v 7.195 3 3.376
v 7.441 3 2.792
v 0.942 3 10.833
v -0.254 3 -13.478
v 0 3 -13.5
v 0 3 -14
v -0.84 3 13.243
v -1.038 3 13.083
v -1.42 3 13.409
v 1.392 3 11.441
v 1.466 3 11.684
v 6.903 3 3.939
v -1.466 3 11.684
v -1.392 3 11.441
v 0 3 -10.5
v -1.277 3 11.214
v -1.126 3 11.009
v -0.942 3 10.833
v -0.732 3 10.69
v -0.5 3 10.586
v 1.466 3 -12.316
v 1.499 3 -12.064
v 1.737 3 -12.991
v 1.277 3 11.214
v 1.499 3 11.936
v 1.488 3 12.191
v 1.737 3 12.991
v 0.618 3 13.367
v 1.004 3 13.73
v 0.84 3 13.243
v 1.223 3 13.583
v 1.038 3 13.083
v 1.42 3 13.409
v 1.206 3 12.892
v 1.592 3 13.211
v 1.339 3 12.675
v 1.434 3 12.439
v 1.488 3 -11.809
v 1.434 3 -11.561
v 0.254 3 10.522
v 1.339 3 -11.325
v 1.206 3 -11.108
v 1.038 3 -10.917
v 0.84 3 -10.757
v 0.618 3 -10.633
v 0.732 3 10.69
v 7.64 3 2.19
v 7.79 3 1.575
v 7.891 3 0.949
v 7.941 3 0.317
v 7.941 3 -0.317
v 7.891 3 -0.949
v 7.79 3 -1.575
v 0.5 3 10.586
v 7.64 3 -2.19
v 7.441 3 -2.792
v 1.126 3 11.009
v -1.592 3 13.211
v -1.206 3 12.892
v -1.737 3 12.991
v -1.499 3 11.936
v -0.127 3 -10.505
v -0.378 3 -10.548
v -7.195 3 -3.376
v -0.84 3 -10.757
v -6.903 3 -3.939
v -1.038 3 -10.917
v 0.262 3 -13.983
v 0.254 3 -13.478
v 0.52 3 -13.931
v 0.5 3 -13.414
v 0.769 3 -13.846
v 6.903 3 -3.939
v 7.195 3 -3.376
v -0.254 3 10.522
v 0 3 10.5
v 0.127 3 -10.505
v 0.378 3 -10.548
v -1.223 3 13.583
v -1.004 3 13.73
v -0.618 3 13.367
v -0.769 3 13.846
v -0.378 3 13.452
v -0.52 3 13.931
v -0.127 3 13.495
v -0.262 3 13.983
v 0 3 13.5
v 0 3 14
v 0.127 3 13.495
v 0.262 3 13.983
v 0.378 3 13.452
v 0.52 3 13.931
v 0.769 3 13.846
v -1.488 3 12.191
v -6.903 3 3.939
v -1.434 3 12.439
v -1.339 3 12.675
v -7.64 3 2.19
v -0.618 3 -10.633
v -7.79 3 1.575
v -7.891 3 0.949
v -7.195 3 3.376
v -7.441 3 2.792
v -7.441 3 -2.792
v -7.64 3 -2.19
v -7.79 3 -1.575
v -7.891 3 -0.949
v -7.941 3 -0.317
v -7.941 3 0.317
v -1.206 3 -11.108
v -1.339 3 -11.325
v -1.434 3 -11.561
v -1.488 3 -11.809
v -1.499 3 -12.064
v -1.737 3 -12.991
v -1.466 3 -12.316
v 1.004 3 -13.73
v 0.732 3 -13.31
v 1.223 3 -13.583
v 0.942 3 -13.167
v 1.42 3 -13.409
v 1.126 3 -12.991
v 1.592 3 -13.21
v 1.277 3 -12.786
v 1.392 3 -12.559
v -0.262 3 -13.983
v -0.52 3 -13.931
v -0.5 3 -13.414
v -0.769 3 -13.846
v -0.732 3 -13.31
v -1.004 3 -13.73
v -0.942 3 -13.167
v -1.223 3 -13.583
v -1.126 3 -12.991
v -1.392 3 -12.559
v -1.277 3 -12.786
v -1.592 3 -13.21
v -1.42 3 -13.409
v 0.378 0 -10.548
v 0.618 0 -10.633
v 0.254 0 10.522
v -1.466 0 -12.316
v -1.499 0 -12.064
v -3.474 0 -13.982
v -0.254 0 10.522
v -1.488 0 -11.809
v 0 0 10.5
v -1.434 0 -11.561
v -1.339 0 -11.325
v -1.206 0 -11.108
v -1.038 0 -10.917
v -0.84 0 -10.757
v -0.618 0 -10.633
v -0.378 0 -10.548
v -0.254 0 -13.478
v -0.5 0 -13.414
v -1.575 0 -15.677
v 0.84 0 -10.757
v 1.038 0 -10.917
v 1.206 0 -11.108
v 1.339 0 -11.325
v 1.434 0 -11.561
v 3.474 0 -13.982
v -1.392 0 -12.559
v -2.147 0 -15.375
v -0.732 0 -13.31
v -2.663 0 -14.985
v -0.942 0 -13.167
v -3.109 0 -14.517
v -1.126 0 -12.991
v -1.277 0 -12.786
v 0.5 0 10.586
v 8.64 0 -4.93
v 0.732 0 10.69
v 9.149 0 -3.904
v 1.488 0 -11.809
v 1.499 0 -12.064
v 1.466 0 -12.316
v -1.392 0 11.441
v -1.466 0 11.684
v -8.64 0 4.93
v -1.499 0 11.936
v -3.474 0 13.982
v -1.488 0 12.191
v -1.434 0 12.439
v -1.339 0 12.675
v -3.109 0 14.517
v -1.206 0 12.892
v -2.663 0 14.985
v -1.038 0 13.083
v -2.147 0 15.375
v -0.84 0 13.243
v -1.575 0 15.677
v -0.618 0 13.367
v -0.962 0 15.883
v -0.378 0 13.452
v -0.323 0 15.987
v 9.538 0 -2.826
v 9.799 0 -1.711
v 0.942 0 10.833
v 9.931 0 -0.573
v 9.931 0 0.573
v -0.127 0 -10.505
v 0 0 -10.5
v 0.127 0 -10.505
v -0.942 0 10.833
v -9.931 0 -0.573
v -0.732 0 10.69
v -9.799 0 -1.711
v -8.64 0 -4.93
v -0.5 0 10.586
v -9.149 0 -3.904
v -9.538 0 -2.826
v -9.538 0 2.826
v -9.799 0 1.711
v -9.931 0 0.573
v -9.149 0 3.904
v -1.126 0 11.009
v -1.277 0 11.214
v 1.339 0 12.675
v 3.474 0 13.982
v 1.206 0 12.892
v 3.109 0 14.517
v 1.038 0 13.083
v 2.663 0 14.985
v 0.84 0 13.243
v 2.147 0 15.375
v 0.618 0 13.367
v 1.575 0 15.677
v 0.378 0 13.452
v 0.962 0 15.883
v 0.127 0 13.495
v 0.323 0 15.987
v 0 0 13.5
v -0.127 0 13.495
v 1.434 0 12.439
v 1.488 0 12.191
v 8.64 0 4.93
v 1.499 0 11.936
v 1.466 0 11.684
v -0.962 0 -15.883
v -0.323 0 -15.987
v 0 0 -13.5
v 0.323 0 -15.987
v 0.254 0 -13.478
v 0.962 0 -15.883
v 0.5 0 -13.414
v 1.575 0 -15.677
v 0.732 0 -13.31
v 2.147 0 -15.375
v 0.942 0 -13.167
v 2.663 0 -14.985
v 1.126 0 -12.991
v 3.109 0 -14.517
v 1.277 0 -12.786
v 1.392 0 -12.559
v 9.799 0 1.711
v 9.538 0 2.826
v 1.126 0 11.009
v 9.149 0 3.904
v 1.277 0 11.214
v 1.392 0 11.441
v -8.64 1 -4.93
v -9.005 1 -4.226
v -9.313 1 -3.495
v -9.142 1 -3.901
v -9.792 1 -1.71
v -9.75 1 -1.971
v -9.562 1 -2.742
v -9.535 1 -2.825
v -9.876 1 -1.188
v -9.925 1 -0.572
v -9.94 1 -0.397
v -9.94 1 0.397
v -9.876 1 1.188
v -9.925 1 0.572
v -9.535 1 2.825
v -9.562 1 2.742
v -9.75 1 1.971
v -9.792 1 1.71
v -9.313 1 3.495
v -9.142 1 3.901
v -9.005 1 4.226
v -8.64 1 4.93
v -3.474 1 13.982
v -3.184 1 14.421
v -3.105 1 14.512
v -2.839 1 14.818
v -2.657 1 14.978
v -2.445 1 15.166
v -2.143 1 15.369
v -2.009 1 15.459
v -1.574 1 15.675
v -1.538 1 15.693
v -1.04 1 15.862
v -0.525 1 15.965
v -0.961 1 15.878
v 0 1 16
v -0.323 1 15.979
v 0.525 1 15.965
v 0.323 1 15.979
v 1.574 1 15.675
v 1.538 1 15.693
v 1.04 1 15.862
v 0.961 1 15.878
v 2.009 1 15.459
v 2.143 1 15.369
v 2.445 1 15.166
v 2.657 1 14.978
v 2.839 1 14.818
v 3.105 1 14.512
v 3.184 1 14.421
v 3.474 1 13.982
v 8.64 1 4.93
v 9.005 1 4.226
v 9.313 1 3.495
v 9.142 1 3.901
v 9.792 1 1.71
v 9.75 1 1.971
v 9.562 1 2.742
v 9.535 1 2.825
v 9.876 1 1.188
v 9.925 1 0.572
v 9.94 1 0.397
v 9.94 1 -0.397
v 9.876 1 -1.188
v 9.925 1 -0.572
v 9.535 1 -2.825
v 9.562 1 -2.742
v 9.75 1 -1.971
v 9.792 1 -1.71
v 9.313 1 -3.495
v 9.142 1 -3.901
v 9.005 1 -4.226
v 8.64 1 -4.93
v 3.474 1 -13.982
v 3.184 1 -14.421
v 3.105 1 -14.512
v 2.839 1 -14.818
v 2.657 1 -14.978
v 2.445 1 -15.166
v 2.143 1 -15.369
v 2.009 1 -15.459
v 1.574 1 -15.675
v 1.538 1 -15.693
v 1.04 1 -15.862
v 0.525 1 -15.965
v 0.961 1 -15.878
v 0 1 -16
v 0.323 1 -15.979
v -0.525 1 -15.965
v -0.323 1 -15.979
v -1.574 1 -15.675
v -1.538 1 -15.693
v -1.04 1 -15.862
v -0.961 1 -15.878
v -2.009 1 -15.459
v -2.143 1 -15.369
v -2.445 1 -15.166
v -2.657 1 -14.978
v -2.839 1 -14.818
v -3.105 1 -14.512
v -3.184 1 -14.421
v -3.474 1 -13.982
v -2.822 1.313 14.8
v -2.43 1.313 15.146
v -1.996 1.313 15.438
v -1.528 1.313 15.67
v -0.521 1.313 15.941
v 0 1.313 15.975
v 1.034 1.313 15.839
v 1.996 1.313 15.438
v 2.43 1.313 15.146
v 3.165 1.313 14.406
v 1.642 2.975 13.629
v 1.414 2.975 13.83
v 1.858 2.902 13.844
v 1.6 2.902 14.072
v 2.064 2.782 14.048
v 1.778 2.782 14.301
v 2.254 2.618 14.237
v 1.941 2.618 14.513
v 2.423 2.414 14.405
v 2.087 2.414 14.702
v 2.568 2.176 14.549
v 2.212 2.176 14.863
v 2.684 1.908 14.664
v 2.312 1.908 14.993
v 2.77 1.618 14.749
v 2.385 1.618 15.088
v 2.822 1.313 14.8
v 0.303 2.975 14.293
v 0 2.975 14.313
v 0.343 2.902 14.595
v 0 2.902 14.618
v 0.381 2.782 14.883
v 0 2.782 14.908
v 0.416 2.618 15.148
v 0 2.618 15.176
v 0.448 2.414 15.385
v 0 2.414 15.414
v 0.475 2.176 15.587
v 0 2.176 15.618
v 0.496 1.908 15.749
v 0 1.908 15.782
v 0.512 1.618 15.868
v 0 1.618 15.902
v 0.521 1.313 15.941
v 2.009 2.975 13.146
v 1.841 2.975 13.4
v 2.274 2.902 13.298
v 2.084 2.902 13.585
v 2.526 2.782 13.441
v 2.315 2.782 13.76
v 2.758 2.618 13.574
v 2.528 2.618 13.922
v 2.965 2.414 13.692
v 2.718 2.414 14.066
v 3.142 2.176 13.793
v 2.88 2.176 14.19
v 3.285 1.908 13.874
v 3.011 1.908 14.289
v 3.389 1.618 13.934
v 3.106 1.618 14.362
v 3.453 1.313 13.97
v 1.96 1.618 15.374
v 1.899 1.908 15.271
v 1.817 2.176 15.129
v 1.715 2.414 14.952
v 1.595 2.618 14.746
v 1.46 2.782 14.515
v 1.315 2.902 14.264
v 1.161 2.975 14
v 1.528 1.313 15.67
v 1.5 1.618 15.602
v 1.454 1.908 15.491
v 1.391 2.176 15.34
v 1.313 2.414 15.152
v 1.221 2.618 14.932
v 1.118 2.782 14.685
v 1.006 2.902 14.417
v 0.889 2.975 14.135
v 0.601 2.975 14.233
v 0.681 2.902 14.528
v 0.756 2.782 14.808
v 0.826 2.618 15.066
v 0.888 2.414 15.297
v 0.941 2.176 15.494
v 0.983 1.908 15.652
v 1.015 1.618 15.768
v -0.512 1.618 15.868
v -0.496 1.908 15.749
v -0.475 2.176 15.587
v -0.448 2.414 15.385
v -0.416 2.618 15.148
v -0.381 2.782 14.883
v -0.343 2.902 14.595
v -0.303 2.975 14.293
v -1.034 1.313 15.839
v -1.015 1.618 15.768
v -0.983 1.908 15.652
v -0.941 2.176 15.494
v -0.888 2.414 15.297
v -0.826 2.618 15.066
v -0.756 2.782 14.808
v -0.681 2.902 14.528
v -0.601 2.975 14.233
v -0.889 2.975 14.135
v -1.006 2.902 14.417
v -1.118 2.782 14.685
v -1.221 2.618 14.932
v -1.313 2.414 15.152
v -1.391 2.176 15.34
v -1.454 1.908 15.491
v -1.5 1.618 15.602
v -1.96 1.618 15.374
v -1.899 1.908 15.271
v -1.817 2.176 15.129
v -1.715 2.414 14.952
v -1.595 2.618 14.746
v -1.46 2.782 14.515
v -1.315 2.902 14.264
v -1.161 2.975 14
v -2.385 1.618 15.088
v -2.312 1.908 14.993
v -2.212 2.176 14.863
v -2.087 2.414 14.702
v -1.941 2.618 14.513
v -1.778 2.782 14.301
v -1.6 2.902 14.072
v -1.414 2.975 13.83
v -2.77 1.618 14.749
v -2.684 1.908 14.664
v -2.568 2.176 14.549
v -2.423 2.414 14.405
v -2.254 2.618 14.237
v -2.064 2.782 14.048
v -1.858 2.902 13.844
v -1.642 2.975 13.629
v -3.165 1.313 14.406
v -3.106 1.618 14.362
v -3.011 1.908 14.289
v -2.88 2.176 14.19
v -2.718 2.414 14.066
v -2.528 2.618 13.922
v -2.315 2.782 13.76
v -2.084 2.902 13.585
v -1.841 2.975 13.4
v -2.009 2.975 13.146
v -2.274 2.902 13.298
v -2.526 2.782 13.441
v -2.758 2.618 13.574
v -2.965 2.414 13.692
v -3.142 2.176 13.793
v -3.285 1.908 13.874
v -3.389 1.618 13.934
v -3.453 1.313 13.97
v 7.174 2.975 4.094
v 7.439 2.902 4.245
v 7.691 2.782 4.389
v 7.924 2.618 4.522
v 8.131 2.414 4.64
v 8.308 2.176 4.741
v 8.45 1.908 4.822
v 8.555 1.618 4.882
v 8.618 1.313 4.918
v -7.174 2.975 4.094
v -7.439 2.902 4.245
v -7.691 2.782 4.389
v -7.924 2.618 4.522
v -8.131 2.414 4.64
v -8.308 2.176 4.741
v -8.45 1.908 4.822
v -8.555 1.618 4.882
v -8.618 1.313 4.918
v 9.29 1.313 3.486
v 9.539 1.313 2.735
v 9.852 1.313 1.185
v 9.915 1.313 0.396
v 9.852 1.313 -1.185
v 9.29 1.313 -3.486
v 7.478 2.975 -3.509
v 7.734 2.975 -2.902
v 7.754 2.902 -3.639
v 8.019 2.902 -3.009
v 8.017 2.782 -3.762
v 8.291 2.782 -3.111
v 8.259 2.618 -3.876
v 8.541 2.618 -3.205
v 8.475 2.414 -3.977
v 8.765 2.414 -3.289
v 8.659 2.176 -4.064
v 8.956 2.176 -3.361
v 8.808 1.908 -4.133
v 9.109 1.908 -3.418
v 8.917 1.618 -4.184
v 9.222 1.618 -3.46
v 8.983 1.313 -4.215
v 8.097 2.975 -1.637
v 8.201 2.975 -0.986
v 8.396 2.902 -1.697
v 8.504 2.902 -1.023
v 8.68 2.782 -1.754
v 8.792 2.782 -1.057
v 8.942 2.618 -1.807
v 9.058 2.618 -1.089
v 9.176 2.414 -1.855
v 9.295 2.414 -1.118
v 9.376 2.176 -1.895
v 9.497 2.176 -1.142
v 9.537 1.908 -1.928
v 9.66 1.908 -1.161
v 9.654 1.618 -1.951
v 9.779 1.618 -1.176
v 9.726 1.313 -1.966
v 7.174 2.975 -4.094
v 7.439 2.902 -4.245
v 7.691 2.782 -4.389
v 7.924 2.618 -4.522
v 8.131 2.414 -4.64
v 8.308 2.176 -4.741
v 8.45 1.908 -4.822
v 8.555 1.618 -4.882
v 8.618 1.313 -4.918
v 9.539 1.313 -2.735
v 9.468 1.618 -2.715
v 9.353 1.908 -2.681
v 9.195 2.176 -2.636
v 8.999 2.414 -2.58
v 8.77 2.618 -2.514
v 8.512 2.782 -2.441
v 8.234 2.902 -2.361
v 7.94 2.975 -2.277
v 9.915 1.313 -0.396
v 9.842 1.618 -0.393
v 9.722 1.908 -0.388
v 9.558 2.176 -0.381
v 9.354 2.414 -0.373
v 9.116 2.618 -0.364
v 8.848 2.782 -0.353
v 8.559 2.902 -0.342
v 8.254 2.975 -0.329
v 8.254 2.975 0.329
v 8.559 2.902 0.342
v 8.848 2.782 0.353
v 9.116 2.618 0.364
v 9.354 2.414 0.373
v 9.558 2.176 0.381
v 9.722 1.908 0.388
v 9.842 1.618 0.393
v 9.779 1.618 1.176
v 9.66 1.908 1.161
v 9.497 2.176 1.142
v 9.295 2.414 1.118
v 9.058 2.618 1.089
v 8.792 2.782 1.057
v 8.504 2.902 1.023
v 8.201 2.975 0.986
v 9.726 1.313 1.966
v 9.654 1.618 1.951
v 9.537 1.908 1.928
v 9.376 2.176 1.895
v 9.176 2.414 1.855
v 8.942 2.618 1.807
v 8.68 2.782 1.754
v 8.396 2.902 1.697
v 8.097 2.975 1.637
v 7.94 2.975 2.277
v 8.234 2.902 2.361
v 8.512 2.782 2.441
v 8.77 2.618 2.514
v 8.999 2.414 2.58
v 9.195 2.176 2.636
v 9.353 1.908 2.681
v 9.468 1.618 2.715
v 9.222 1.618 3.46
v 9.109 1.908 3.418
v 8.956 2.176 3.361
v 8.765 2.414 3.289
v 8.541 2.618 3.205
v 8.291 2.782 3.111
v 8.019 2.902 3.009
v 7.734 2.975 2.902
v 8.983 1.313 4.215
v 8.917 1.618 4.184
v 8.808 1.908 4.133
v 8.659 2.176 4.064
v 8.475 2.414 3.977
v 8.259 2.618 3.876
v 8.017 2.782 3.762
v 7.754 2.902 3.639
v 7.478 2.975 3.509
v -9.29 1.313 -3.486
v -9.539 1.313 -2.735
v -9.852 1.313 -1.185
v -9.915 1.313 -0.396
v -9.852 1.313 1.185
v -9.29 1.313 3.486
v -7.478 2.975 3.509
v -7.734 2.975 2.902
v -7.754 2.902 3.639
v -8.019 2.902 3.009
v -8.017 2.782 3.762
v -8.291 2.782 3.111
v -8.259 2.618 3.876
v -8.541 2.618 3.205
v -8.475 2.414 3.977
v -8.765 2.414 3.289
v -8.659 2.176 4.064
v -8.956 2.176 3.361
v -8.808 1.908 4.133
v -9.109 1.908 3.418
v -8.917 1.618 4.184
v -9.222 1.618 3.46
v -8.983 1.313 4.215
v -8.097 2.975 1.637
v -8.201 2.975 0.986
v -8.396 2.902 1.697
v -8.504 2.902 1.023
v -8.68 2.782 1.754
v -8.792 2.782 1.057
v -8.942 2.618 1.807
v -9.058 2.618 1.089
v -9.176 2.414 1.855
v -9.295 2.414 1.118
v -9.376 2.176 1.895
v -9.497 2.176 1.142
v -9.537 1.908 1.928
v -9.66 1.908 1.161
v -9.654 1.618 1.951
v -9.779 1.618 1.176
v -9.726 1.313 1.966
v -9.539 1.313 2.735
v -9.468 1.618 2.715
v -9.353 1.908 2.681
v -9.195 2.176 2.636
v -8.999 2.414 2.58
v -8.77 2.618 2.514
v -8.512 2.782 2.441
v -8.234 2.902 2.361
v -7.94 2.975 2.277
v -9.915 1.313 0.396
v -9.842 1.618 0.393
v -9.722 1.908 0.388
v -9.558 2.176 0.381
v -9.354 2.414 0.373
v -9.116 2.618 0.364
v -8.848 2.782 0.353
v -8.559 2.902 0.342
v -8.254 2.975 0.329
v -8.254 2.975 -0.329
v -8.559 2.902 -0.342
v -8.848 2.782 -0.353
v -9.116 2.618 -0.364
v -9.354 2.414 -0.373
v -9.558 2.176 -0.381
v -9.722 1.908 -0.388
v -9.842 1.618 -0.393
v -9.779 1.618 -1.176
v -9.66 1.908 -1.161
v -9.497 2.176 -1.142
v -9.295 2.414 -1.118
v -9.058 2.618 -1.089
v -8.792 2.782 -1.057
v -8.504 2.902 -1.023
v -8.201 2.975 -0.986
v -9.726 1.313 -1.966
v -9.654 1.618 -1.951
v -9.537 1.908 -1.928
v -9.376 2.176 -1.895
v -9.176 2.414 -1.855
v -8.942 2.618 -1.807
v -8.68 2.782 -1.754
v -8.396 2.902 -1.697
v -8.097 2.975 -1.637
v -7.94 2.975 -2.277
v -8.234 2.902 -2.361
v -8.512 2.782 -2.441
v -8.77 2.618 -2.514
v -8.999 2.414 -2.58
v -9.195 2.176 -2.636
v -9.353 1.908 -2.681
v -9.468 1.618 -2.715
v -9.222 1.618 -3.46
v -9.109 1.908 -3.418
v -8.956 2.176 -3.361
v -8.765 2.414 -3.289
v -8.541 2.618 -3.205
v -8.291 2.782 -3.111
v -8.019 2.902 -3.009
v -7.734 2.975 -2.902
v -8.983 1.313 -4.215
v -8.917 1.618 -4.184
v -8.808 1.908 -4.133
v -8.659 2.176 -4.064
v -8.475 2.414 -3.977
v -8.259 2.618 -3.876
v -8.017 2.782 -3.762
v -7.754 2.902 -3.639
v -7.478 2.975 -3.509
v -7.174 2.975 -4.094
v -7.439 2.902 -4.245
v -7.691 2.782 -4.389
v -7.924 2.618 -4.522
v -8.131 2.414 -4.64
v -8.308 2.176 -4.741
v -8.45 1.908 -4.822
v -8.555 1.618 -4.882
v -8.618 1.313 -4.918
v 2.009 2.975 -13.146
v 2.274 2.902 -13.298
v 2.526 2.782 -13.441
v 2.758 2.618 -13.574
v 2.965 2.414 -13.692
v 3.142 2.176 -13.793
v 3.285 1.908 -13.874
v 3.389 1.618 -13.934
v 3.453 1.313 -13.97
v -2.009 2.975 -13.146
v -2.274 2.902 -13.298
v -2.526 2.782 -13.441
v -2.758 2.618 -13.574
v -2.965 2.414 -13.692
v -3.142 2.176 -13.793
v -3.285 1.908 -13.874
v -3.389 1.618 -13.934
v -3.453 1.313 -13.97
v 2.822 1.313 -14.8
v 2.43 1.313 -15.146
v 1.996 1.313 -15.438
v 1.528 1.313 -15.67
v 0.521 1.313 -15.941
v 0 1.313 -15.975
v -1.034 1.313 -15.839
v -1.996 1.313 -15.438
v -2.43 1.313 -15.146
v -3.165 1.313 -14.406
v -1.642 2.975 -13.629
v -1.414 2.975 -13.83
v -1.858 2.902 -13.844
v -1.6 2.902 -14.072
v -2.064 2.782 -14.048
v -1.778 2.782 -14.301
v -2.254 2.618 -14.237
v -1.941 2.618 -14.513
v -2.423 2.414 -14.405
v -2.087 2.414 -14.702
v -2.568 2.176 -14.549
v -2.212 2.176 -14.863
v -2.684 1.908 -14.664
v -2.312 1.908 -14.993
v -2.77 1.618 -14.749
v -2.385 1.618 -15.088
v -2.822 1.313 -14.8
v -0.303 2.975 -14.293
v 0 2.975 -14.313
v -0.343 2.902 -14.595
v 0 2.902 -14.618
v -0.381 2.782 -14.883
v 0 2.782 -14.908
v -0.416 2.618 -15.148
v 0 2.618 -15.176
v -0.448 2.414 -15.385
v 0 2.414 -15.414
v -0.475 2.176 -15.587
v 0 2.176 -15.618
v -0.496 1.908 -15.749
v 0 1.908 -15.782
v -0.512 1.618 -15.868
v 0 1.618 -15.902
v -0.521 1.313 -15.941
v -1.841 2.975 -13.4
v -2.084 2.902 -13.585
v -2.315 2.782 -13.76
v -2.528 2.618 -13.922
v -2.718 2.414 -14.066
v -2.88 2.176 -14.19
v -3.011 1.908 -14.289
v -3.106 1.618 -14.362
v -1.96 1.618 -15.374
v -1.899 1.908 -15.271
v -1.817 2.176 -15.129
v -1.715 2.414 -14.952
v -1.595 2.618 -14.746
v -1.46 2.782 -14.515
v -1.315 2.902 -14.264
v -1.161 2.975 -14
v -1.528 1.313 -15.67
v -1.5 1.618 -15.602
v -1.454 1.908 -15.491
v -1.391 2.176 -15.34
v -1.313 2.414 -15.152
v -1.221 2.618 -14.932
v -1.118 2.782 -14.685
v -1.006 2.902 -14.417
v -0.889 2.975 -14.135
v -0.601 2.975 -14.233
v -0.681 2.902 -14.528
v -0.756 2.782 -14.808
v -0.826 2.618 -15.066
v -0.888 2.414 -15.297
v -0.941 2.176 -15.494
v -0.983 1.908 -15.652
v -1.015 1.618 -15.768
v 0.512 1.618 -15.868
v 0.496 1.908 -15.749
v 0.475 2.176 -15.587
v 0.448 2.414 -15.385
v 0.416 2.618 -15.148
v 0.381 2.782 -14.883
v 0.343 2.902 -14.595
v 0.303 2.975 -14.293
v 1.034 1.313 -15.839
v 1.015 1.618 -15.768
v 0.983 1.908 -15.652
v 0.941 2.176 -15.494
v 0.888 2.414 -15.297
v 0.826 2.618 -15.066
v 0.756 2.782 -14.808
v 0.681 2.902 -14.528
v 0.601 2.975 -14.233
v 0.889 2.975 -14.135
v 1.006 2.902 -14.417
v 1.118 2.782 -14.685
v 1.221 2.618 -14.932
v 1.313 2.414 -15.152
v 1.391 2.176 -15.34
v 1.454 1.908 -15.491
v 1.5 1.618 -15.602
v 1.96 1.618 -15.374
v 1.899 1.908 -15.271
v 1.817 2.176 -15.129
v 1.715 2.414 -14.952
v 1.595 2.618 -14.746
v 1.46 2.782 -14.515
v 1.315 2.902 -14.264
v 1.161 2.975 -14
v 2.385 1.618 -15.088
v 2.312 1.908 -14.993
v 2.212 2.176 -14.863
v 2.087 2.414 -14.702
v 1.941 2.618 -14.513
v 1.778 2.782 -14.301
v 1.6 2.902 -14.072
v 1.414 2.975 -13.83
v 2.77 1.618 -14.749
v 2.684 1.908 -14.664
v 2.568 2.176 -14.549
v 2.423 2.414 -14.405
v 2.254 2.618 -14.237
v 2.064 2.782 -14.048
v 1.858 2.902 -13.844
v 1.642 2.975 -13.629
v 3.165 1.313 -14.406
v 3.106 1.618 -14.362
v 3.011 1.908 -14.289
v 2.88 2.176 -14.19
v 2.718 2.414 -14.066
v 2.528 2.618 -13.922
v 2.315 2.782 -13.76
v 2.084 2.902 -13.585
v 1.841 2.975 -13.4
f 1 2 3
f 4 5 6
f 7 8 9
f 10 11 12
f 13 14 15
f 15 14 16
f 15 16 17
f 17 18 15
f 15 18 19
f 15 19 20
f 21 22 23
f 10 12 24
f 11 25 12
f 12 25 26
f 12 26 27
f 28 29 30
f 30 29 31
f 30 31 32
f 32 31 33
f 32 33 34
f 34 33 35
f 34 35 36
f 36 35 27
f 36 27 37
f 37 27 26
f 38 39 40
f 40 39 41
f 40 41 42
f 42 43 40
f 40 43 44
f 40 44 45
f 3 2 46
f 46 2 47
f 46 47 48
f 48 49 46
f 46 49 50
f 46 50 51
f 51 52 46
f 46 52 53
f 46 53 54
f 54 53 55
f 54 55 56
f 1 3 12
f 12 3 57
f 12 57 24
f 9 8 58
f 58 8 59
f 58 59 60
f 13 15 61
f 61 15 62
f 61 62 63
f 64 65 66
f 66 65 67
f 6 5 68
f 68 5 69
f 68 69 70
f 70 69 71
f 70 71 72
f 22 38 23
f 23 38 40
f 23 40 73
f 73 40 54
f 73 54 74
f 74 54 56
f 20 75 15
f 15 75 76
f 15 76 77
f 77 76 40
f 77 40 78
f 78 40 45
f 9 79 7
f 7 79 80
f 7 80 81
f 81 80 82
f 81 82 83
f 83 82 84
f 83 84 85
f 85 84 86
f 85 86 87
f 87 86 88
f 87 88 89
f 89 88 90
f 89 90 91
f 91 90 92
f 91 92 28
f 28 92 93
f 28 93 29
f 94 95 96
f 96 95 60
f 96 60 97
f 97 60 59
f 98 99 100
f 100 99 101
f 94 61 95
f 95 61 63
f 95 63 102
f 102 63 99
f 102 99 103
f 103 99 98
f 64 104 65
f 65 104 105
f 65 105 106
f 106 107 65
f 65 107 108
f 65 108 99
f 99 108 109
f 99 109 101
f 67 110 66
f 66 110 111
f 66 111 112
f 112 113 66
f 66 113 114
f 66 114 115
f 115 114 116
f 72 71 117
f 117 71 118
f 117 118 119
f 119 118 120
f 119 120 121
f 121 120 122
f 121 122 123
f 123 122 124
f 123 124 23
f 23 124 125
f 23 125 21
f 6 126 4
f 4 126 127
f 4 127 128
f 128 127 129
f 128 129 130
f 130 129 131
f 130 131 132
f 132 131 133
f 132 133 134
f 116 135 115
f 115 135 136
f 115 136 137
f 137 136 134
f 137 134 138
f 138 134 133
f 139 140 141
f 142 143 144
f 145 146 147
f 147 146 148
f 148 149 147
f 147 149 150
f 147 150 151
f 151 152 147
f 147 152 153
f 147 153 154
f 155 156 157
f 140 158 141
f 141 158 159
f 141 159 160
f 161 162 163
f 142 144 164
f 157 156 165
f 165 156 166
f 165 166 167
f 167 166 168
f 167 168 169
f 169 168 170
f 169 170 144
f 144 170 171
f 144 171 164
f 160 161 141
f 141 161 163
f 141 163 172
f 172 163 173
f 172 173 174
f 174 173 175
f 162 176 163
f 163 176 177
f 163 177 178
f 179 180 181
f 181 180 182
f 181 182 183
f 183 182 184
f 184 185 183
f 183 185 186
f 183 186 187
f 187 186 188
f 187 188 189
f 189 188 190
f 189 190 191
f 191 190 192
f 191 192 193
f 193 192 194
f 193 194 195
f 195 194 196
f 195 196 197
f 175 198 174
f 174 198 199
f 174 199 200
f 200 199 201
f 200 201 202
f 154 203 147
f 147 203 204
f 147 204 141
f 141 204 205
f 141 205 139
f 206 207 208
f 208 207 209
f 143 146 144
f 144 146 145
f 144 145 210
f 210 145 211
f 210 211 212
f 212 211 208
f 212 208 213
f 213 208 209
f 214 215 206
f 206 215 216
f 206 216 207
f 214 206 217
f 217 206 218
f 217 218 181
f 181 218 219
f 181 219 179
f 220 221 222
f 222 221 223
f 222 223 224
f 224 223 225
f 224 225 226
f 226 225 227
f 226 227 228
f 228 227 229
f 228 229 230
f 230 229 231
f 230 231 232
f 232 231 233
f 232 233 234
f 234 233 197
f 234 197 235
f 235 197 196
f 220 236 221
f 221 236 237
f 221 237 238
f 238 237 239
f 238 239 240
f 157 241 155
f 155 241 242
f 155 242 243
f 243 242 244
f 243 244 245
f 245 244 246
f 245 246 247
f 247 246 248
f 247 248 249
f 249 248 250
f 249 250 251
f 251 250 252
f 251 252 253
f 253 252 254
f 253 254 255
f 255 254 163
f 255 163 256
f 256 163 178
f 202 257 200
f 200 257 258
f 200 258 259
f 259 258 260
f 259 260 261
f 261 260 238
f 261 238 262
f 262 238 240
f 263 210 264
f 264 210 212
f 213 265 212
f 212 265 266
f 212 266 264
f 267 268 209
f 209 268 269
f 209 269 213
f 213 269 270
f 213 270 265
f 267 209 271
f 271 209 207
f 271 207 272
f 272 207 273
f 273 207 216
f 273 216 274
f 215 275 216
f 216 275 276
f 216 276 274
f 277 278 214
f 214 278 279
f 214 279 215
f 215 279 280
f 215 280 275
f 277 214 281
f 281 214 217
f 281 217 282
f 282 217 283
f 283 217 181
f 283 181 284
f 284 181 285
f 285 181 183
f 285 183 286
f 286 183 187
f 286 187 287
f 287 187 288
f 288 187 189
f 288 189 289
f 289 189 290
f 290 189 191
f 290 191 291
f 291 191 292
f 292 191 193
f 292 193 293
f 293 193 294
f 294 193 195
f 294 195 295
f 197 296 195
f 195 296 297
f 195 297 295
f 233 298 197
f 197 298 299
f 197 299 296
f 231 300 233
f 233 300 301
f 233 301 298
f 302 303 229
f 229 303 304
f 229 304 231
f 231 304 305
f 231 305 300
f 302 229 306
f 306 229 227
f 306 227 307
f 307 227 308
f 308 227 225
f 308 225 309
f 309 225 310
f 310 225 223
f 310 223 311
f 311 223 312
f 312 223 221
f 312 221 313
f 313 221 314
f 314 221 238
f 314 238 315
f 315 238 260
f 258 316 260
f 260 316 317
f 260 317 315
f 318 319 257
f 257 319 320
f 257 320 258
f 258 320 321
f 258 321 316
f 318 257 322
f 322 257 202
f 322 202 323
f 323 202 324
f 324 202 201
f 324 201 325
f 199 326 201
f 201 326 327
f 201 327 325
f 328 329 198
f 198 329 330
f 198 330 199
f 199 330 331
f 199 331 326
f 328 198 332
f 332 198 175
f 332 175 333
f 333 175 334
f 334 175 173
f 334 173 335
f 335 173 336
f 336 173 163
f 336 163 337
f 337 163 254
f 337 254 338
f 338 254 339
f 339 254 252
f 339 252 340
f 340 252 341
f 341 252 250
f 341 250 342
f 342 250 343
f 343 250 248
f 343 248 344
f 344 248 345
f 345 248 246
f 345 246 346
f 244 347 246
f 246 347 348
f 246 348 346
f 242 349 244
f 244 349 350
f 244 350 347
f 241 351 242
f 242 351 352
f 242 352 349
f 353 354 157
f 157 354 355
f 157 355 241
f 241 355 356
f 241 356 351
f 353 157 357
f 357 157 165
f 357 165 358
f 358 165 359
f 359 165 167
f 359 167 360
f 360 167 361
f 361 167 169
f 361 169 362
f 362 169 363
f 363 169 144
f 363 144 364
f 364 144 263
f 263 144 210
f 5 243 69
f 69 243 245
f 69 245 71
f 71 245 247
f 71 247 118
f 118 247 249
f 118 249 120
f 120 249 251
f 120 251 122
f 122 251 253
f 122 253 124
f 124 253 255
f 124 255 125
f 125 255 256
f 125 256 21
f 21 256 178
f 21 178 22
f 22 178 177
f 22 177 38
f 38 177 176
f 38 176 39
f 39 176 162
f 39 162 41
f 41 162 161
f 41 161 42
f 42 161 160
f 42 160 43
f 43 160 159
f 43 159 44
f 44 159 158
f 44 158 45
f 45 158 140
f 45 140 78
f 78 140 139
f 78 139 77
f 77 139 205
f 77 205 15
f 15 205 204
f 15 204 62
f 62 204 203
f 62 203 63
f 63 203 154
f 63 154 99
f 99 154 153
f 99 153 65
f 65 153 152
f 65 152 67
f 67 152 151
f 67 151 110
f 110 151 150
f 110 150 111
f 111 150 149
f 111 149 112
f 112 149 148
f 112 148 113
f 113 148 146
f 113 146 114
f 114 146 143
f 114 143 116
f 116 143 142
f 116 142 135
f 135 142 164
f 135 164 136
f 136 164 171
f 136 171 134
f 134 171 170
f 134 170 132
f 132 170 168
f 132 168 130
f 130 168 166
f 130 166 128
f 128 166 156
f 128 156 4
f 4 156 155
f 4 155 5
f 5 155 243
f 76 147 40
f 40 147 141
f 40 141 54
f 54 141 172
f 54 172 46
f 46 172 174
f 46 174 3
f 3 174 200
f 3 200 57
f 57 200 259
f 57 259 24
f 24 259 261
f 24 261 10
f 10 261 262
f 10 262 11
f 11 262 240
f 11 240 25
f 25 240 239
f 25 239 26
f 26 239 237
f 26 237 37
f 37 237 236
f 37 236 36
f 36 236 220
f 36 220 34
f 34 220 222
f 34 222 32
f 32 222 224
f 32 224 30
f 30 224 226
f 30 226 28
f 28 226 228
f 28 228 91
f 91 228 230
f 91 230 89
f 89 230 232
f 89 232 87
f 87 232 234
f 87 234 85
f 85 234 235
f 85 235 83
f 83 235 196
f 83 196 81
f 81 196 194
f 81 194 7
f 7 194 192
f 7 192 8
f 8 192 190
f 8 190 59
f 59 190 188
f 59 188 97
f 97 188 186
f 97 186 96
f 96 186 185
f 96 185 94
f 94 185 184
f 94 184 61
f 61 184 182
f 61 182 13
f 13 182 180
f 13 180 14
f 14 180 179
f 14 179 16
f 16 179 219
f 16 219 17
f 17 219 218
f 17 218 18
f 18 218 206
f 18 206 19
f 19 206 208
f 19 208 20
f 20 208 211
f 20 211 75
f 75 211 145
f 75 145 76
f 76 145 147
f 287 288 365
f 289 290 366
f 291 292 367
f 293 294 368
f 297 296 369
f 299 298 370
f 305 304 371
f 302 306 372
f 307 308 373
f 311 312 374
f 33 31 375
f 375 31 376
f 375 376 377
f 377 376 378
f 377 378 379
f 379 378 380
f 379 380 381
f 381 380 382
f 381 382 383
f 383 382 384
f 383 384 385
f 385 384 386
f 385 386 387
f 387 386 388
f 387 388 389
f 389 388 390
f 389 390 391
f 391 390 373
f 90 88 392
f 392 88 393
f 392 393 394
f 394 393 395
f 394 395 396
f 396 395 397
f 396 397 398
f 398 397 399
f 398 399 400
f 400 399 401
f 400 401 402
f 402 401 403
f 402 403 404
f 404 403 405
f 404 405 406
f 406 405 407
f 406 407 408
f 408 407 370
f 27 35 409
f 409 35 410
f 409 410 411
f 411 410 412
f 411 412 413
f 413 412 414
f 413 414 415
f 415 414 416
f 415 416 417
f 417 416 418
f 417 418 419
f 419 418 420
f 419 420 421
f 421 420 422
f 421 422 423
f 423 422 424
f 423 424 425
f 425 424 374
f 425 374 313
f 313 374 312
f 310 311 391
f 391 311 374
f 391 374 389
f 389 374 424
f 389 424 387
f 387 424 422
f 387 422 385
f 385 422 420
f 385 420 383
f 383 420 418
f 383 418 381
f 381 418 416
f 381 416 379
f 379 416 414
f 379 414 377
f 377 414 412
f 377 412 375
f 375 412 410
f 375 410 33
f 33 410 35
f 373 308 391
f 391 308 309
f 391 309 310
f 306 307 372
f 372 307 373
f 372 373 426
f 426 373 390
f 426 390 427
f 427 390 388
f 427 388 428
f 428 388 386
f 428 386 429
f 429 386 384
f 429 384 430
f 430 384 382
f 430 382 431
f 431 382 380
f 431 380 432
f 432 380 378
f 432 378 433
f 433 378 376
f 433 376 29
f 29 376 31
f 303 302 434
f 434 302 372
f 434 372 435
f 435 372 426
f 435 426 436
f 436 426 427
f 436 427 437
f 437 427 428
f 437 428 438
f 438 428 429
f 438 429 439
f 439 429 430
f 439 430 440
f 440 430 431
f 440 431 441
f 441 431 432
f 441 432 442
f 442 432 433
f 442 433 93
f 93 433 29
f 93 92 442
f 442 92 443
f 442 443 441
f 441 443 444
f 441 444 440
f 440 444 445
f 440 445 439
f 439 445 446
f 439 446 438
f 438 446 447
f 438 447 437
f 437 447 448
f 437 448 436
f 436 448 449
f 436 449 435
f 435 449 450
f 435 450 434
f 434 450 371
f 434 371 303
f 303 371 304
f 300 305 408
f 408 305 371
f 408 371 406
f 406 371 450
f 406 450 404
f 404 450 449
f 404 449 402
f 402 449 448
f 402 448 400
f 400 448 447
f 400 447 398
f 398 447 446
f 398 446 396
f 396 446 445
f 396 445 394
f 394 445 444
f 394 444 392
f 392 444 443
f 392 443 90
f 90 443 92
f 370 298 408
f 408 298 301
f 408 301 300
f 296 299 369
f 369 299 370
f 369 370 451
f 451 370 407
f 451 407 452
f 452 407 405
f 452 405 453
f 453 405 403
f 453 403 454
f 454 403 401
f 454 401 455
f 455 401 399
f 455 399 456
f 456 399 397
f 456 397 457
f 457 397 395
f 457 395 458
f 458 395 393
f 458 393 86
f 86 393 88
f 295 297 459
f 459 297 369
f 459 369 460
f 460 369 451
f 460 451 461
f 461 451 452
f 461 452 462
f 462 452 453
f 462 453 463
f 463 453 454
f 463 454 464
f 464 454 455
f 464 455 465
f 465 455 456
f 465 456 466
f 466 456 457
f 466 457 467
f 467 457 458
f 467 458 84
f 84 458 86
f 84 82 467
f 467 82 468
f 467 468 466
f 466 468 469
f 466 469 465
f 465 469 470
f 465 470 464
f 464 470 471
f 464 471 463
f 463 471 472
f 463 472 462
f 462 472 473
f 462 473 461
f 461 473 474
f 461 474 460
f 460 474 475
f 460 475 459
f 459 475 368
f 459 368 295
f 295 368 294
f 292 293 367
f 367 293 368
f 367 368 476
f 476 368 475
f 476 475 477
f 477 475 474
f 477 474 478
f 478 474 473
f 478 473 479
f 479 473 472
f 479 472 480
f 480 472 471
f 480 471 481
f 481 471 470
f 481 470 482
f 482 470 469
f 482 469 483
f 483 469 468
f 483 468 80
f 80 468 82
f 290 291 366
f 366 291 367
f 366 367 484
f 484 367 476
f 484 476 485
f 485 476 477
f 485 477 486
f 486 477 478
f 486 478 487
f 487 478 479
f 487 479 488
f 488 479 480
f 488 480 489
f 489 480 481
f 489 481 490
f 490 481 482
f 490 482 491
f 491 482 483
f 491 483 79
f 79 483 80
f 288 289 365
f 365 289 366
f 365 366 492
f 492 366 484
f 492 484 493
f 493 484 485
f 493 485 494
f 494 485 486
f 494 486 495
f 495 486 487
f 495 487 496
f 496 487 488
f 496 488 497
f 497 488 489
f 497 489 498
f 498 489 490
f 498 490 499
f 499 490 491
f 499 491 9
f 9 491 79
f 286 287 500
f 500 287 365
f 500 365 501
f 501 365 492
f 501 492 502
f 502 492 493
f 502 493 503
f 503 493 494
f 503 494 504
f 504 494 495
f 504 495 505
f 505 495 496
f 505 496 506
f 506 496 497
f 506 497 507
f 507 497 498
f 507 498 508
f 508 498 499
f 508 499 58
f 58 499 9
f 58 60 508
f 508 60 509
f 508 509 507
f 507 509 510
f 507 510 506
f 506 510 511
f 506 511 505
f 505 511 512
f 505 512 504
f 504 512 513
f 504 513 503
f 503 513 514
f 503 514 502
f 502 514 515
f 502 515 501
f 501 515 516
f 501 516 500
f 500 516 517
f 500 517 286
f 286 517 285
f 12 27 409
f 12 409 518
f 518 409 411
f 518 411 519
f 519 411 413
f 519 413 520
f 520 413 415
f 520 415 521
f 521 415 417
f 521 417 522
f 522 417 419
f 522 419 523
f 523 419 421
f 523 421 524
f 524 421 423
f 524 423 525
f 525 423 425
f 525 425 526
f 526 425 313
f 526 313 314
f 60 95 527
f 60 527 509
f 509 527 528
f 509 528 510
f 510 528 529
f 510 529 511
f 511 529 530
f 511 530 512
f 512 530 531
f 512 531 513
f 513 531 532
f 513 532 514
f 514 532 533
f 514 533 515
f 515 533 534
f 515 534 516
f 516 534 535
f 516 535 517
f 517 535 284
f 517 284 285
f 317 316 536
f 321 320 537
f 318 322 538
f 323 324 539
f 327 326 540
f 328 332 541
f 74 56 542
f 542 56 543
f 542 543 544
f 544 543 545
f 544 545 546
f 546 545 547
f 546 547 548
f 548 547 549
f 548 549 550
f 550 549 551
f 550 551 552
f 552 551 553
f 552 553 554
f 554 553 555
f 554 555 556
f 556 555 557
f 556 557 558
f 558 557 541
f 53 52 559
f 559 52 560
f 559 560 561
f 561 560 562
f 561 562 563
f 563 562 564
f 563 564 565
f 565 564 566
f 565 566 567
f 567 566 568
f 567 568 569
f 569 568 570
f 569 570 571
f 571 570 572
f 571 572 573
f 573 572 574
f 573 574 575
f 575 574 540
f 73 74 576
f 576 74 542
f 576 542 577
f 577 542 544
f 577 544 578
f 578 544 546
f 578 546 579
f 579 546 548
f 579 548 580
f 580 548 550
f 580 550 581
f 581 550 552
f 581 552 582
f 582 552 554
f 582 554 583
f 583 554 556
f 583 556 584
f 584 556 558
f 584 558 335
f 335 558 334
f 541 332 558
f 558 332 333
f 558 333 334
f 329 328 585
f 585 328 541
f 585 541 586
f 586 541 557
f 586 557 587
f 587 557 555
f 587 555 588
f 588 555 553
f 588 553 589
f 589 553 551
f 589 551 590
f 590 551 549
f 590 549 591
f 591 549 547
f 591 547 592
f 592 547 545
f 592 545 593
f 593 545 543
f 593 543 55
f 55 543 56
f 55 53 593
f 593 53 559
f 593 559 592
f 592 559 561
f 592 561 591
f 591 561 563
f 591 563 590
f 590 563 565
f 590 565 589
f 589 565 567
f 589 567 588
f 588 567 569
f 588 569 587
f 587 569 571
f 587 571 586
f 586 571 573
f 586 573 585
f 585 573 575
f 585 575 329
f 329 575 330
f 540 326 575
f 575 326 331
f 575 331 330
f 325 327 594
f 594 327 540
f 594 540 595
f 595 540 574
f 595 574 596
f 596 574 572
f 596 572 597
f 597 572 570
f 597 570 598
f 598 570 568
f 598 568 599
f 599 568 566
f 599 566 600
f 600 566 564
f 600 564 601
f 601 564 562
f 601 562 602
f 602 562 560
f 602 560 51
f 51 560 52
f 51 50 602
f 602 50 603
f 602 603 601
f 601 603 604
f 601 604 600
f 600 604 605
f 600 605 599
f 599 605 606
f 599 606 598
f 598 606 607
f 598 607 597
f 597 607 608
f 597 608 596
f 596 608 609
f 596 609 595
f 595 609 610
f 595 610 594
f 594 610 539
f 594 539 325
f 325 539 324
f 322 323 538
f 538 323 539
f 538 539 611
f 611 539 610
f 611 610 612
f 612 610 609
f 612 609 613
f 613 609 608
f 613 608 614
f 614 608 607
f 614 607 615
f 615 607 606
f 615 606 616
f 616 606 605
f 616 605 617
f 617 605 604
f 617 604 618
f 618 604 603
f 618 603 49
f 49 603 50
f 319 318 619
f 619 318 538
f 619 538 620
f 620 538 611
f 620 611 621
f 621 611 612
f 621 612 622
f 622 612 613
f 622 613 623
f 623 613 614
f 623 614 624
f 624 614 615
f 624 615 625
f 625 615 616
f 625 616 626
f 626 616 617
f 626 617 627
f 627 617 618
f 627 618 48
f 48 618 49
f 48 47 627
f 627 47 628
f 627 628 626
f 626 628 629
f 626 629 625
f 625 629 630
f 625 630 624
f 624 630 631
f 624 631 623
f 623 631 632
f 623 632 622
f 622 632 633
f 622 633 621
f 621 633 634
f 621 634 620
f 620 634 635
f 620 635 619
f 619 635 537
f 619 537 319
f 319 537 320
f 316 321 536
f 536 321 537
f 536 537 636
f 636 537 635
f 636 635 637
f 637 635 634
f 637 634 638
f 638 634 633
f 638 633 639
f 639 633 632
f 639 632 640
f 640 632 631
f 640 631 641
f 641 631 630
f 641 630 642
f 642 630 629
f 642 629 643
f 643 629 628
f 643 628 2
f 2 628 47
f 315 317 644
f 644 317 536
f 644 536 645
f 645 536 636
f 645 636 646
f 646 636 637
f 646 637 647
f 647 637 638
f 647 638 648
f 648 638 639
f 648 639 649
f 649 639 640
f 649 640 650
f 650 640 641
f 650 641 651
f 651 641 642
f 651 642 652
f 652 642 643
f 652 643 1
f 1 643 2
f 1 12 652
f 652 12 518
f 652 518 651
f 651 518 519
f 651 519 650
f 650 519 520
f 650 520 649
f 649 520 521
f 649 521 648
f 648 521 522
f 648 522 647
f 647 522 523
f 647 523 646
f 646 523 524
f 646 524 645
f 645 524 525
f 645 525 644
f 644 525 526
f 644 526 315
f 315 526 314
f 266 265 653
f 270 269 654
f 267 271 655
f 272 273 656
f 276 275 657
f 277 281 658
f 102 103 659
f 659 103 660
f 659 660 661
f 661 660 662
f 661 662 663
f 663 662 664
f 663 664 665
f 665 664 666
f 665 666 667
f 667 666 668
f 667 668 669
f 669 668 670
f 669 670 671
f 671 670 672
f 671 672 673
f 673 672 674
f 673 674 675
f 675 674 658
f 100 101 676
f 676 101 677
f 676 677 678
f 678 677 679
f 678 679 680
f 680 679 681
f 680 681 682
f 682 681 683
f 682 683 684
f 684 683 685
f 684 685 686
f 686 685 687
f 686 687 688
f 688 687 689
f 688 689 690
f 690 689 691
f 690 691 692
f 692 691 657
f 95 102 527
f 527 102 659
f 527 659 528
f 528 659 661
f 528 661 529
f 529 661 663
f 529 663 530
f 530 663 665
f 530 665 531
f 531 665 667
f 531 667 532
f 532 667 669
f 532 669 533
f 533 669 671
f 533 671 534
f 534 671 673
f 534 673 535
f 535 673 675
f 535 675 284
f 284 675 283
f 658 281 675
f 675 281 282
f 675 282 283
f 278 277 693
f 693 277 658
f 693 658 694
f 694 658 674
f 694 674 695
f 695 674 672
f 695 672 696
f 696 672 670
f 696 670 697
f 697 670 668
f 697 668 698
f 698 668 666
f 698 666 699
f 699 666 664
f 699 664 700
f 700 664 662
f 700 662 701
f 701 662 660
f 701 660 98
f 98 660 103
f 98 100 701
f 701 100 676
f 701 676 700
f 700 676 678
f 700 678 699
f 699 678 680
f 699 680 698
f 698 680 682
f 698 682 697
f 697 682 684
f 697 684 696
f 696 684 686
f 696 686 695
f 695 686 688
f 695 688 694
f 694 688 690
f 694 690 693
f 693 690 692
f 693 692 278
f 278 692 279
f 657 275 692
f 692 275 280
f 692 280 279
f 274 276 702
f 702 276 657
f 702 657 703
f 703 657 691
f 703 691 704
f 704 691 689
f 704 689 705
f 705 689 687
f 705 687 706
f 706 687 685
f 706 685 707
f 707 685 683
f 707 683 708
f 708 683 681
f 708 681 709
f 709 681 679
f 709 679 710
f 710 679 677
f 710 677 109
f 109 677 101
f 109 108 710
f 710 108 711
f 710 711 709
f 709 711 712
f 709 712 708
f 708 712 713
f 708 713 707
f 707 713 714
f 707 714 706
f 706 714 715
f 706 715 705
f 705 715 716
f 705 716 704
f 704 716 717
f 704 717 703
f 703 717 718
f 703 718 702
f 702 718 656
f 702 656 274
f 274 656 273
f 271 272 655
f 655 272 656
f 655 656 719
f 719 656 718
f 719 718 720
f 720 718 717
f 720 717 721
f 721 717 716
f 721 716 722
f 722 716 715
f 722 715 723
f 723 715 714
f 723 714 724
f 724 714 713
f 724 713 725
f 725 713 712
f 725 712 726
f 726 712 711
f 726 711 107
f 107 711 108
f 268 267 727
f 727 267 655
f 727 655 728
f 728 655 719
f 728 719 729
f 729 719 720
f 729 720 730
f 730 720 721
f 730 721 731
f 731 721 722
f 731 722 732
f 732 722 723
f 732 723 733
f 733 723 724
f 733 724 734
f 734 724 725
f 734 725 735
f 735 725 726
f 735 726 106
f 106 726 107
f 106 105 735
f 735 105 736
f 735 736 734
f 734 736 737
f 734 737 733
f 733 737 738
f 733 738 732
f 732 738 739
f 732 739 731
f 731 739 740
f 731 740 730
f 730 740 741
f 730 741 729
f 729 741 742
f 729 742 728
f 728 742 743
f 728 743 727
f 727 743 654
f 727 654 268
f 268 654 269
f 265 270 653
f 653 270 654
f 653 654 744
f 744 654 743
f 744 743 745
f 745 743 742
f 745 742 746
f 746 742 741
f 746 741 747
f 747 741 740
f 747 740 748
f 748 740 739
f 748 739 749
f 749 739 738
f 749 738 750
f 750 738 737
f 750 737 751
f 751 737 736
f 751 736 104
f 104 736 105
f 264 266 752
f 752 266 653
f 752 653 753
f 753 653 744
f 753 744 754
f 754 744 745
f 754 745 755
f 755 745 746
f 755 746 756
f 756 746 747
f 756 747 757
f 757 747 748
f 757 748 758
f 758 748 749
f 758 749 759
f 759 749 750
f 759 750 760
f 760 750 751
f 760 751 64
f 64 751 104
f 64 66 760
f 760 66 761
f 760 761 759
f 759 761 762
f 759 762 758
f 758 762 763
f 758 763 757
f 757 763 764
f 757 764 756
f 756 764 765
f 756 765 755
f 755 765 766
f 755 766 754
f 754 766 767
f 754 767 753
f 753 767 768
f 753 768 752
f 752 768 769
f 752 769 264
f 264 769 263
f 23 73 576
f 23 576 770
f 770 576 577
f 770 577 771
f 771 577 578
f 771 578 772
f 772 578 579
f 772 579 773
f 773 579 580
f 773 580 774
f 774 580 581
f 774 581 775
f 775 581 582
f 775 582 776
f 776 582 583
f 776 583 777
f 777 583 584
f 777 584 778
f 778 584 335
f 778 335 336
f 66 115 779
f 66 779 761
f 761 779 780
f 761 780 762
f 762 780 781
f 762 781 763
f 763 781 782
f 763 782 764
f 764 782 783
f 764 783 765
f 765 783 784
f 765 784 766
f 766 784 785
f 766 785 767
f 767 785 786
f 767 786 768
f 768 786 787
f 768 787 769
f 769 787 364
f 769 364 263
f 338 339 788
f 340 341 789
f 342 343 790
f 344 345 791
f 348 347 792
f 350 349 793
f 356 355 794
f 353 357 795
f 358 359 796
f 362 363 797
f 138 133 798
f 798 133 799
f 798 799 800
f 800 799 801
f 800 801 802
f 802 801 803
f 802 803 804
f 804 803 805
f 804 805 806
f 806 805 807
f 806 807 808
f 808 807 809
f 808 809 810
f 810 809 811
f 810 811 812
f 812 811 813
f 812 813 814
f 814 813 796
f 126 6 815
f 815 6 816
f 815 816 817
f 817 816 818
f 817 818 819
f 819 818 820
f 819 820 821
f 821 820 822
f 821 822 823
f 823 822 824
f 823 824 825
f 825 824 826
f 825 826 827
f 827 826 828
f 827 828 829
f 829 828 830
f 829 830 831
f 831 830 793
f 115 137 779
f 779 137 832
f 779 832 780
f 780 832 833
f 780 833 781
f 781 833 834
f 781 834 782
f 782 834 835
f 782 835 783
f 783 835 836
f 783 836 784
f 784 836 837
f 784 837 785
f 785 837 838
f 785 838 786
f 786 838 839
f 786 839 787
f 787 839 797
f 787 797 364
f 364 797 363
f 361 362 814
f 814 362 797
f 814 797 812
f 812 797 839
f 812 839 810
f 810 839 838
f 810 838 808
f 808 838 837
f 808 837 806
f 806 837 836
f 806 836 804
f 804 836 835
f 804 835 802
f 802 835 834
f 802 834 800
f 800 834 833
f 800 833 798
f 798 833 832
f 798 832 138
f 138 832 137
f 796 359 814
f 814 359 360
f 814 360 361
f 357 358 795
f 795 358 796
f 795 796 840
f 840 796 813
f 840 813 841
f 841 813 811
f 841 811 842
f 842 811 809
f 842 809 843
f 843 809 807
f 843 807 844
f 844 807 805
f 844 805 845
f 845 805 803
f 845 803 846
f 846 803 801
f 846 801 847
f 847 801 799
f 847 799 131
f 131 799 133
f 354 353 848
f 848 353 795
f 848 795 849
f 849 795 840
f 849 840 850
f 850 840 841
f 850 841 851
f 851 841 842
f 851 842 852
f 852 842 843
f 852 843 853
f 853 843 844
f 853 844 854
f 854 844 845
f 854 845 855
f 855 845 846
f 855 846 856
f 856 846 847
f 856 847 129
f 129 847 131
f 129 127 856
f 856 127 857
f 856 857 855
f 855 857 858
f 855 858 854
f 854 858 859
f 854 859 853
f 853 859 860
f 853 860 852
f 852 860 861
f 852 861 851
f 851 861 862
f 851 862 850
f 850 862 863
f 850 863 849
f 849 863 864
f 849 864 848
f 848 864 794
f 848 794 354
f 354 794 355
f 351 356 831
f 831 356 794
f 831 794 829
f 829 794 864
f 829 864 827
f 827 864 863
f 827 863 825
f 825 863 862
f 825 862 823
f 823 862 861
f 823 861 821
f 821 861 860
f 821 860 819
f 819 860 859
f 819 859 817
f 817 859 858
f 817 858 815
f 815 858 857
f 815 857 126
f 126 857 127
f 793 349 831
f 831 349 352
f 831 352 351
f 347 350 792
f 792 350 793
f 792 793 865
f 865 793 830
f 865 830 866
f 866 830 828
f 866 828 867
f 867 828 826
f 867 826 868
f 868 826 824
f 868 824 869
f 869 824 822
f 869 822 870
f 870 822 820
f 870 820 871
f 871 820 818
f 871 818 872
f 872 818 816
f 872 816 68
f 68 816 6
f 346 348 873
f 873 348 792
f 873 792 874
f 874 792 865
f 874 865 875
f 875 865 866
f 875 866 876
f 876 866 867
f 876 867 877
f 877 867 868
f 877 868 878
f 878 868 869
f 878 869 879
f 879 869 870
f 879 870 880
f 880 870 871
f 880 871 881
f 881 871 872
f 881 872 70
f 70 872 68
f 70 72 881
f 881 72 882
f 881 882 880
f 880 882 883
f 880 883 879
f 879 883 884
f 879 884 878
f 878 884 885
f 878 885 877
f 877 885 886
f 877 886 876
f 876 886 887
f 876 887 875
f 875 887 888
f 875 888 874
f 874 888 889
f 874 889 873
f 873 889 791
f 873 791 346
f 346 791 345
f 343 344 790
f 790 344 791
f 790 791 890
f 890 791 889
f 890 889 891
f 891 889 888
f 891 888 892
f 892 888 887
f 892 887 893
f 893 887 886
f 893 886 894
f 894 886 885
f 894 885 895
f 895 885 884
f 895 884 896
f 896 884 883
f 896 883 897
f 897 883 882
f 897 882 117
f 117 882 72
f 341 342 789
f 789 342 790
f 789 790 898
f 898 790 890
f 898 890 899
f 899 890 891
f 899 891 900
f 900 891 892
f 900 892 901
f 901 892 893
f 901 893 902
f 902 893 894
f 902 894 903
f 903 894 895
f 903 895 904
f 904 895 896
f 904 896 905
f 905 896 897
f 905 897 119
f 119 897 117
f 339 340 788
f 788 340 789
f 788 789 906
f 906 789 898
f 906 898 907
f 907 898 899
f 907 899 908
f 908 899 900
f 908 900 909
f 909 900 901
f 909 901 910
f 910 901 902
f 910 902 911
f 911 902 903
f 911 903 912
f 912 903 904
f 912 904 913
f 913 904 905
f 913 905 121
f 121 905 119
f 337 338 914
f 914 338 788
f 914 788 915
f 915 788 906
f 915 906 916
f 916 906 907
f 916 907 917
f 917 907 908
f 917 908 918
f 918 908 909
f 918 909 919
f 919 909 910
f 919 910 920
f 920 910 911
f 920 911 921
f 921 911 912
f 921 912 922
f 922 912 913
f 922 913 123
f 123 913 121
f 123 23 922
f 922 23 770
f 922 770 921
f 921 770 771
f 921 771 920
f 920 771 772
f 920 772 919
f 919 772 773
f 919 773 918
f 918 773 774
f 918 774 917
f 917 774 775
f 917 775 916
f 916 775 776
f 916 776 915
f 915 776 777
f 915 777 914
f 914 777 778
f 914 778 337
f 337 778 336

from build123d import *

# Parameters (mm, degrees)
SKETCH_1_R      = 1.5
EXTRUDE_1_DEPTH = 3
FILLET_1_R      = 2


with BuildPart() as part:
    # Эскиз1 → Бобышка-Вытянуть1 (new body)
    with BuildSketch(Plane(origin=(0, 0, 0), x_dir=(1, 0, 0), z_dir=(0, 1, 0))):
        with BuildLine():
            Line((-3.863363367, 13.30042486), (-8.639745084, 4.930152864))
            ThreePointArc((-8.639745084, 4.930152864), (-9.947442002, 0), (-8.639745084, -4.930152864))
            Line((-8.639745084, -4.930152864), (-3.47415751, -13.982480667))
            ThreePointArc((-3.47415751, -13.982480667), (0, -16), (3.47415751, -13.982480667))
            Line((3.47415751, -13.982480667), (8.639745084, -4.930152864))
            ThreePointArc((8.639745084, -4.930152864), (9.947442002, 0), (8.639745084, 4.930152864))
            Line((8.639745084, 4.930152864), (3.863363367, 13.30042486))
            Line((3.863363367, 13.30042486), (3.47415751, 13.982480667))
            ThreePointArc((3.47415751, 13.982480667), (0, 16), (-3.47415751, 13.982480667))
            Line((-3.47415751, 13.982480667), (-3.863363367, 13.30042486))
        make_face()
        with Locations((0, 12)):
            Circle(SKETCH_1_R, mode=Mode.SUBTRACT)
        with Locations((0, -12)):
            Circle(SKETCH_1_R, mode=Mode.SUBTRACT)
    extrude(amount=EXTRUDE_1_DEPTH)

    # Скругление1
    fillet_1_edges = [part.edges().sort_by_distance(p)[0] for p in [
        (0, 3, 16),
        (6.056951297, 3, 9.456316766),
        (9.947442002, 3, 0),
        (6.056951297, 3, -9.456316766),
        (0, 3, -16),
        (-6.056951297, 3, -9.456316766),
        (-9.947442002, 3, 0),
        (-6.056951297, 3, 9.456316766),
    ]]
    fillet(fillet_1_edges, radius=FILLET_1_R)


solid = part.part
